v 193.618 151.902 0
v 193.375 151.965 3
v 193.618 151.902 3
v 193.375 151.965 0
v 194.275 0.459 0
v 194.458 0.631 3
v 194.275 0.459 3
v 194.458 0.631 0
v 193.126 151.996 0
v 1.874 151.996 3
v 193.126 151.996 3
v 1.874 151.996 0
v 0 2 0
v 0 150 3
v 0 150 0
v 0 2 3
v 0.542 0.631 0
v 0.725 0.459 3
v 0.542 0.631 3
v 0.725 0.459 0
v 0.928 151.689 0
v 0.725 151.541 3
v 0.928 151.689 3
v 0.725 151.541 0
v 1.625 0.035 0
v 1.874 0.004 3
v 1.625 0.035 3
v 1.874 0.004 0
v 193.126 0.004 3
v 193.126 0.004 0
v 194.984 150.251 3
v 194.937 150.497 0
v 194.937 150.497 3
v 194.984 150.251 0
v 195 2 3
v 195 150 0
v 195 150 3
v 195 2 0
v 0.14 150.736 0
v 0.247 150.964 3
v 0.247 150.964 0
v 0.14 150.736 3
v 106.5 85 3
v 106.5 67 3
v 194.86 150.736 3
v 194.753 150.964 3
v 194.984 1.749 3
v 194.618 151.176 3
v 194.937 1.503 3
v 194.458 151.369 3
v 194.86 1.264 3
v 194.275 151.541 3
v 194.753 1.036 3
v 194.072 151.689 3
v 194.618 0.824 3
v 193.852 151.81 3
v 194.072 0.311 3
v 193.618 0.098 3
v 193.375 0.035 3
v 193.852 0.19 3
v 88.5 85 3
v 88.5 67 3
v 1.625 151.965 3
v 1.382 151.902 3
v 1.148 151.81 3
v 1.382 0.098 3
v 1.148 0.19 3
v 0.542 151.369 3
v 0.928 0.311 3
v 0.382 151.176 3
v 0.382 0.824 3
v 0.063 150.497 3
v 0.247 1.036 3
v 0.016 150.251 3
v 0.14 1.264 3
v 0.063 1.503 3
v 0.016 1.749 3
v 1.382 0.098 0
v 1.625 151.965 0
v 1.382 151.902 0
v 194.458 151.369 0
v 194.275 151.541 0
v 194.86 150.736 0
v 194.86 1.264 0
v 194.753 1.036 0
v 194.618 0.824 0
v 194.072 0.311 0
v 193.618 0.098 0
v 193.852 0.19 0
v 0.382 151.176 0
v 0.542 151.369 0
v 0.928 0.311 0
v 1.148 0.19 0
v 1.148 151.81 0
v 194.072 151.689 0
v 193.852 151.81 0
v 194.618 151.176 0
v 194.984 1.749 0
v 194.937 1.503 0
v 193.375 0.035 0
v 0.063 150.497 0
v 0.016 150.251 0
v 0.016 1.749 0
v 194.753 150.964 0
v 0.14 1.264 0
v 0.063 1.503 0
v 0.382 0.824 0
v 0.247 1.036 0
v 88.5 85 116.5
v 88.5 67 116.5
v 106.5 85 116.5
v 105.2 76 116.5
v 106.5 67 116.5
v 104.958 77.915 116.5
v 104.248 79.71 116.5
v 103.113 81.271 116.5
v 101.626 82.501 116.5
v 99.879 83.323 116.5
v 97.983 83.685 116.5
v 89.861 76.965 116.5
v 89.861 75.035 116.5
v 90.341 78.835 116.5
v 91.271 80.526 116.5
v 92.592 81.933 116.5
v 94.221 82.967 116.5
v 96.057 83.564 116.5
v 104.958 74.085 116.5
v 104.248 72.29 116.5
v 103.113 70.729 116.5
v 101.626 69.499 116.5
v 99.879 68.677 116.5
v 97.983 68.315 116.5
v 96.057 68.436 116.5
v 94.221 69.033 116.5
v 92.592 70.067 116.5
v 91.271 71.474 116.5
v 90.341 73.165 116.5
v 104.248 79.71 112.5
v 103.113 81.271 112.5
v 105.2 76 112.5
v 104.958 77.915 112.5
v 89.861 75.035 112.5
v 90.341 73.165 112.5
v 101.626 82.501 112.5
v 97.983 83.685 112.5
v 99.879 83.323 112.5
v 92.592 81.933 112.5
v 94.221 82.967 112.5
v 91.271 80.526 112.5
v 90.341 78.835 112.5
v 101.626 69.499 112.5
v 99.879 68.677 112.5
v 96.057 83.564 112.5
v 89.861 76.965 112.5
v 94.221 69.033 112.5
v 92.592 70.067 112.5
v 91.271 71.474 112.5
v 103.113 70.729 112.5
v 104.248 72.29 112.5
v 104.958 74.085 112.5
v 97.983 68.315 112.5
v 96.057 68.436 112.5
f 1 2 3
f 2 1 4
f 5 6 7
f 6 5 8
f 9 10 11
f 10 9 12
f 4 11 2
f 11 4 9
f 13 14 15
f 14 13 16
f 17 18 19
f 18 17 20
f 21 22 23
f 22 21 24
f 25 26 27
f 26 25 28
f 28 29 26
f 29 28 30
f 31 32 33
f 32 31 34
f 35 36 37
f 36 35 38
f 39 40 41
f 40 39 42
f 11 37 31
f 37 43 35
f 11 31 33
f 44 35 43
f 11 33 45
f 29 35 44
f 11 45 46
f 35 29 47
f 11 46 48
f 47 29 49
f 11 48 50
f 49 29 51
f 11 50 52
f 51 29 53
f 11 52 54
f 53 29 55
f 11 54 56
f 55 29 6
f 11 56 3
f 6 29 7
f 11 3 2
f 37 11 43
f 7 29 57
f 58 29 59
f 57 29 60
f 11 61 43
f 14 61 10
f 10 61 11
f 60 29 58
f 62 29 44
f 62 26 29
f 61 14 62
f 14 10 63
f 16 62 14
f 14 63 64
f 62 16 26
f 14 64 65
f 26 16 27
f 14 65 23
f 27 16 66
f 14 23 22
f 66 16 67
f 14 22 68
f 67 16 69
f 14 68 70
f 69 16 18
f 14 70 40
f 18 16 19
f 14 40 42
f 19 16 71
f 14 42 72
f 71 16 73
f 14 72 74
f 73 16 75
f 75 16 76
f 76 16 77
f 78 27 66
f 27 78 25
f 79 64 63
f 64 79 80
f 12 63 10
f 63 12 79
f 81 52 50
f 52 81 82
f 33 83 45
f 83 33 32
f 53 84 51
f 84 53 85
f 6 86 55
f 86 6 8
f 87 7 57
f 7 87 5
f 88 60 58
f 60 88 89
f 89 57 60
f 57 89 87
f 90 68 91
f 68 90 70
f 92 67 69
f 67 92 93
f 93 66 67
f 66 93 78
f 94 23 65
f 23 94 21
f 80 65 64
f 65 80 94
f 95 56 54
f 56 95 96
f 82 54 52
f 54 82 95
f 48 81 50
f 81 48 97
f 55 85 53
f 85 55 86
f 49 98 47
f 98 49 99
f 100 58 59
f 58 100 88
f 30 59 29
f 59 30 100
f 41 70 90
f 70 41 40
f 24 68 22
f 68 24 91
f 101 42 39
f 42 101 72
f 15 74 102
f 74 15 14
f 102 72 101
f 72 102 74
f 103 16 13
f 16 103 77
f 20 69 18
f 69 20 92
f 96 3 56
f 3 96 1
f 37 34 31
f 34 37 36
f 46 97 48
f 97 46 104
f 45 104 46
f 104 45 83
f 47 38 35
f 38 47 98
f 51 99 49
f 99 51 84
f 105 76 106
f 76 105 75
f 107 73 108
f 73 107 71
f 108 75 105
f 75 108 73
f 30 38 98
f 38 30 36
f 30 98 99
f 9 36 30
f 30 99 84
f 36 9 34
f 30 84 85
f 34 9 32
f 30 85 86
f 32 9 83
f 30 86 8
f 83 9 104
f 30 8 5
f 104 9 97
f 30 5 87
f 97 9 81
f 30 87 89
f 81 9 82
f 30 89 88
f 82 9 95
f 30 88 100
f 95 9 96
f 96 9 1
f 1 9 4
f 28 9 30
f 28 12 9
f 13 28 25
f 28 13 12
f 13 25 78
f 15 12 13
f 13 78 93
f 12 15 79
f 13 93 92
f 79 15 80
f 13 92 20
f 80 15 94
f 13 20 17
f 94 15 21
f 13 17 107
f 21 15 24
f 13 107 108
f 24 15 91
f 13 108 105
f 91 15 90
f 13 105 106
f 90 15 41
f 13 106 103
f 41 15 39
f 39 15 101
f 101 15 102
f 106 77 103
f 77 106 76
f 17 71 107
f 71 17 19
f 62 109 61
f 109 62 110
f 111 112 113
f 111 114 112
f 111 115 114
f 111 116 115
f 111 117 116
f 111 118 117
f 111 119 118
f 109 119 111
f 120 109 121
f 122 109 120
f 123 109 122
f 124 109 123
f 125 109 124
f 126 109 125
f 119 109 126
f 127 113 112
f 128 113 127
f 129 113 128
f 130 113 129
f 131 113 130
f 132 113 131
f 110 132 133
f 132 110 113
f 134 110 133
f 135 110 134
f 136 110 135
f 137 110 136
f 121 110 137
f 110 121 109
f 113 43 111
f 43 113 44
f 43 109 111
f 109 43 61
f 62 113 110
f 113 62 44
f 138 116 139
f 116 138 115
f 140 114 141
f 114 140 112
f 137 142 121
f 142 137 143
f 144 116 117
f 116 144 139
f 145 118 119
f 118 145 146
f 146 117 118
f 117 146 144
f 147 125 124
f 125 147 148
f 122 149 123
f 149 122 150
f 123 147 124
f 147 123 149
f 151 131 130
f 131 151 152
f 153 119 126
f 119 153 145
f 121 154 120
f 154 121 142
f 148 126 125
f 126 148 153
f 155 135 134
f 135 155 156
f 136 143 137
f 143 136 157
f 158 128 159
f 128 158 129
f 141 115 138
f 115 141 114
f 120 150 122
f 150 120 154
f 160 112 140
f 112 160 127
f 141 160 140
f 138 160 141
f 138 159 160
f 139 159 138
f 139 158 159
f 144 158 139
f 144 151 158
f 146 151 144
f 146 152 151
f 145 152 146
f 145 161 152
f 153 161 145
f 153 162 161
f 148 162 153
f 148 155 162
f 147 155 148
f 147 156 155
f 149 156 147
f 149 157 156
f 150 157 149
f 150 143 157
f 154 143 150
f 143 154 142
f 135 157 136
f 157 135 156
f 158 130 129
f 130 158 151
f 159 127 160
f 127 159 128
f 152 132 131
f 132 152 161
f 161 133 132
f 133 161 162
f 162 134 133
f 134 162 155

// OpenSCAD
magnetHoleWidth = 19;
wallThickness = 3;
singlePileHeight = 1.97;
maxTokenHeight = 62;
maxTokenCount = 10;
width = wallThickness + maxTokenHeight + wallThickness + magnetHoleWidth + maxTokenHeight + wallThickness;
singleBoxHeight = wallThickness + (maxTokenCount * singlePileHeight);
length = 195;
height = 3;
floorThickness = 3;

//Based on magnet size:
pillarHeight = height + (singleBoxHeight * 5);
pillarSideLength = 18;
magnetBaseInnerDiameter = 15.4;
magnetHeight = 4.0;

spaceBetweenCircles = 2;


difference() {
union(){
    $fn=50;
    minkowski()
    {
      translate([2,2,0])
        cube([length-4, width-4, height - 1]);
      cylinder(r=2,h=1);
    }
   
    translate([length/2 - ((pillarSideLength)/2), width/2 - ((pillarSideLength)/2), 0])
        cube([pillarSideLength, pillarSideLength, pillarHeight]);
        

}
    translate([length/2,  width/2, pillarHeight - magnetHeight])
        cylinder(magnetHeight, d=magnetBaseInnerDiameter);

}
